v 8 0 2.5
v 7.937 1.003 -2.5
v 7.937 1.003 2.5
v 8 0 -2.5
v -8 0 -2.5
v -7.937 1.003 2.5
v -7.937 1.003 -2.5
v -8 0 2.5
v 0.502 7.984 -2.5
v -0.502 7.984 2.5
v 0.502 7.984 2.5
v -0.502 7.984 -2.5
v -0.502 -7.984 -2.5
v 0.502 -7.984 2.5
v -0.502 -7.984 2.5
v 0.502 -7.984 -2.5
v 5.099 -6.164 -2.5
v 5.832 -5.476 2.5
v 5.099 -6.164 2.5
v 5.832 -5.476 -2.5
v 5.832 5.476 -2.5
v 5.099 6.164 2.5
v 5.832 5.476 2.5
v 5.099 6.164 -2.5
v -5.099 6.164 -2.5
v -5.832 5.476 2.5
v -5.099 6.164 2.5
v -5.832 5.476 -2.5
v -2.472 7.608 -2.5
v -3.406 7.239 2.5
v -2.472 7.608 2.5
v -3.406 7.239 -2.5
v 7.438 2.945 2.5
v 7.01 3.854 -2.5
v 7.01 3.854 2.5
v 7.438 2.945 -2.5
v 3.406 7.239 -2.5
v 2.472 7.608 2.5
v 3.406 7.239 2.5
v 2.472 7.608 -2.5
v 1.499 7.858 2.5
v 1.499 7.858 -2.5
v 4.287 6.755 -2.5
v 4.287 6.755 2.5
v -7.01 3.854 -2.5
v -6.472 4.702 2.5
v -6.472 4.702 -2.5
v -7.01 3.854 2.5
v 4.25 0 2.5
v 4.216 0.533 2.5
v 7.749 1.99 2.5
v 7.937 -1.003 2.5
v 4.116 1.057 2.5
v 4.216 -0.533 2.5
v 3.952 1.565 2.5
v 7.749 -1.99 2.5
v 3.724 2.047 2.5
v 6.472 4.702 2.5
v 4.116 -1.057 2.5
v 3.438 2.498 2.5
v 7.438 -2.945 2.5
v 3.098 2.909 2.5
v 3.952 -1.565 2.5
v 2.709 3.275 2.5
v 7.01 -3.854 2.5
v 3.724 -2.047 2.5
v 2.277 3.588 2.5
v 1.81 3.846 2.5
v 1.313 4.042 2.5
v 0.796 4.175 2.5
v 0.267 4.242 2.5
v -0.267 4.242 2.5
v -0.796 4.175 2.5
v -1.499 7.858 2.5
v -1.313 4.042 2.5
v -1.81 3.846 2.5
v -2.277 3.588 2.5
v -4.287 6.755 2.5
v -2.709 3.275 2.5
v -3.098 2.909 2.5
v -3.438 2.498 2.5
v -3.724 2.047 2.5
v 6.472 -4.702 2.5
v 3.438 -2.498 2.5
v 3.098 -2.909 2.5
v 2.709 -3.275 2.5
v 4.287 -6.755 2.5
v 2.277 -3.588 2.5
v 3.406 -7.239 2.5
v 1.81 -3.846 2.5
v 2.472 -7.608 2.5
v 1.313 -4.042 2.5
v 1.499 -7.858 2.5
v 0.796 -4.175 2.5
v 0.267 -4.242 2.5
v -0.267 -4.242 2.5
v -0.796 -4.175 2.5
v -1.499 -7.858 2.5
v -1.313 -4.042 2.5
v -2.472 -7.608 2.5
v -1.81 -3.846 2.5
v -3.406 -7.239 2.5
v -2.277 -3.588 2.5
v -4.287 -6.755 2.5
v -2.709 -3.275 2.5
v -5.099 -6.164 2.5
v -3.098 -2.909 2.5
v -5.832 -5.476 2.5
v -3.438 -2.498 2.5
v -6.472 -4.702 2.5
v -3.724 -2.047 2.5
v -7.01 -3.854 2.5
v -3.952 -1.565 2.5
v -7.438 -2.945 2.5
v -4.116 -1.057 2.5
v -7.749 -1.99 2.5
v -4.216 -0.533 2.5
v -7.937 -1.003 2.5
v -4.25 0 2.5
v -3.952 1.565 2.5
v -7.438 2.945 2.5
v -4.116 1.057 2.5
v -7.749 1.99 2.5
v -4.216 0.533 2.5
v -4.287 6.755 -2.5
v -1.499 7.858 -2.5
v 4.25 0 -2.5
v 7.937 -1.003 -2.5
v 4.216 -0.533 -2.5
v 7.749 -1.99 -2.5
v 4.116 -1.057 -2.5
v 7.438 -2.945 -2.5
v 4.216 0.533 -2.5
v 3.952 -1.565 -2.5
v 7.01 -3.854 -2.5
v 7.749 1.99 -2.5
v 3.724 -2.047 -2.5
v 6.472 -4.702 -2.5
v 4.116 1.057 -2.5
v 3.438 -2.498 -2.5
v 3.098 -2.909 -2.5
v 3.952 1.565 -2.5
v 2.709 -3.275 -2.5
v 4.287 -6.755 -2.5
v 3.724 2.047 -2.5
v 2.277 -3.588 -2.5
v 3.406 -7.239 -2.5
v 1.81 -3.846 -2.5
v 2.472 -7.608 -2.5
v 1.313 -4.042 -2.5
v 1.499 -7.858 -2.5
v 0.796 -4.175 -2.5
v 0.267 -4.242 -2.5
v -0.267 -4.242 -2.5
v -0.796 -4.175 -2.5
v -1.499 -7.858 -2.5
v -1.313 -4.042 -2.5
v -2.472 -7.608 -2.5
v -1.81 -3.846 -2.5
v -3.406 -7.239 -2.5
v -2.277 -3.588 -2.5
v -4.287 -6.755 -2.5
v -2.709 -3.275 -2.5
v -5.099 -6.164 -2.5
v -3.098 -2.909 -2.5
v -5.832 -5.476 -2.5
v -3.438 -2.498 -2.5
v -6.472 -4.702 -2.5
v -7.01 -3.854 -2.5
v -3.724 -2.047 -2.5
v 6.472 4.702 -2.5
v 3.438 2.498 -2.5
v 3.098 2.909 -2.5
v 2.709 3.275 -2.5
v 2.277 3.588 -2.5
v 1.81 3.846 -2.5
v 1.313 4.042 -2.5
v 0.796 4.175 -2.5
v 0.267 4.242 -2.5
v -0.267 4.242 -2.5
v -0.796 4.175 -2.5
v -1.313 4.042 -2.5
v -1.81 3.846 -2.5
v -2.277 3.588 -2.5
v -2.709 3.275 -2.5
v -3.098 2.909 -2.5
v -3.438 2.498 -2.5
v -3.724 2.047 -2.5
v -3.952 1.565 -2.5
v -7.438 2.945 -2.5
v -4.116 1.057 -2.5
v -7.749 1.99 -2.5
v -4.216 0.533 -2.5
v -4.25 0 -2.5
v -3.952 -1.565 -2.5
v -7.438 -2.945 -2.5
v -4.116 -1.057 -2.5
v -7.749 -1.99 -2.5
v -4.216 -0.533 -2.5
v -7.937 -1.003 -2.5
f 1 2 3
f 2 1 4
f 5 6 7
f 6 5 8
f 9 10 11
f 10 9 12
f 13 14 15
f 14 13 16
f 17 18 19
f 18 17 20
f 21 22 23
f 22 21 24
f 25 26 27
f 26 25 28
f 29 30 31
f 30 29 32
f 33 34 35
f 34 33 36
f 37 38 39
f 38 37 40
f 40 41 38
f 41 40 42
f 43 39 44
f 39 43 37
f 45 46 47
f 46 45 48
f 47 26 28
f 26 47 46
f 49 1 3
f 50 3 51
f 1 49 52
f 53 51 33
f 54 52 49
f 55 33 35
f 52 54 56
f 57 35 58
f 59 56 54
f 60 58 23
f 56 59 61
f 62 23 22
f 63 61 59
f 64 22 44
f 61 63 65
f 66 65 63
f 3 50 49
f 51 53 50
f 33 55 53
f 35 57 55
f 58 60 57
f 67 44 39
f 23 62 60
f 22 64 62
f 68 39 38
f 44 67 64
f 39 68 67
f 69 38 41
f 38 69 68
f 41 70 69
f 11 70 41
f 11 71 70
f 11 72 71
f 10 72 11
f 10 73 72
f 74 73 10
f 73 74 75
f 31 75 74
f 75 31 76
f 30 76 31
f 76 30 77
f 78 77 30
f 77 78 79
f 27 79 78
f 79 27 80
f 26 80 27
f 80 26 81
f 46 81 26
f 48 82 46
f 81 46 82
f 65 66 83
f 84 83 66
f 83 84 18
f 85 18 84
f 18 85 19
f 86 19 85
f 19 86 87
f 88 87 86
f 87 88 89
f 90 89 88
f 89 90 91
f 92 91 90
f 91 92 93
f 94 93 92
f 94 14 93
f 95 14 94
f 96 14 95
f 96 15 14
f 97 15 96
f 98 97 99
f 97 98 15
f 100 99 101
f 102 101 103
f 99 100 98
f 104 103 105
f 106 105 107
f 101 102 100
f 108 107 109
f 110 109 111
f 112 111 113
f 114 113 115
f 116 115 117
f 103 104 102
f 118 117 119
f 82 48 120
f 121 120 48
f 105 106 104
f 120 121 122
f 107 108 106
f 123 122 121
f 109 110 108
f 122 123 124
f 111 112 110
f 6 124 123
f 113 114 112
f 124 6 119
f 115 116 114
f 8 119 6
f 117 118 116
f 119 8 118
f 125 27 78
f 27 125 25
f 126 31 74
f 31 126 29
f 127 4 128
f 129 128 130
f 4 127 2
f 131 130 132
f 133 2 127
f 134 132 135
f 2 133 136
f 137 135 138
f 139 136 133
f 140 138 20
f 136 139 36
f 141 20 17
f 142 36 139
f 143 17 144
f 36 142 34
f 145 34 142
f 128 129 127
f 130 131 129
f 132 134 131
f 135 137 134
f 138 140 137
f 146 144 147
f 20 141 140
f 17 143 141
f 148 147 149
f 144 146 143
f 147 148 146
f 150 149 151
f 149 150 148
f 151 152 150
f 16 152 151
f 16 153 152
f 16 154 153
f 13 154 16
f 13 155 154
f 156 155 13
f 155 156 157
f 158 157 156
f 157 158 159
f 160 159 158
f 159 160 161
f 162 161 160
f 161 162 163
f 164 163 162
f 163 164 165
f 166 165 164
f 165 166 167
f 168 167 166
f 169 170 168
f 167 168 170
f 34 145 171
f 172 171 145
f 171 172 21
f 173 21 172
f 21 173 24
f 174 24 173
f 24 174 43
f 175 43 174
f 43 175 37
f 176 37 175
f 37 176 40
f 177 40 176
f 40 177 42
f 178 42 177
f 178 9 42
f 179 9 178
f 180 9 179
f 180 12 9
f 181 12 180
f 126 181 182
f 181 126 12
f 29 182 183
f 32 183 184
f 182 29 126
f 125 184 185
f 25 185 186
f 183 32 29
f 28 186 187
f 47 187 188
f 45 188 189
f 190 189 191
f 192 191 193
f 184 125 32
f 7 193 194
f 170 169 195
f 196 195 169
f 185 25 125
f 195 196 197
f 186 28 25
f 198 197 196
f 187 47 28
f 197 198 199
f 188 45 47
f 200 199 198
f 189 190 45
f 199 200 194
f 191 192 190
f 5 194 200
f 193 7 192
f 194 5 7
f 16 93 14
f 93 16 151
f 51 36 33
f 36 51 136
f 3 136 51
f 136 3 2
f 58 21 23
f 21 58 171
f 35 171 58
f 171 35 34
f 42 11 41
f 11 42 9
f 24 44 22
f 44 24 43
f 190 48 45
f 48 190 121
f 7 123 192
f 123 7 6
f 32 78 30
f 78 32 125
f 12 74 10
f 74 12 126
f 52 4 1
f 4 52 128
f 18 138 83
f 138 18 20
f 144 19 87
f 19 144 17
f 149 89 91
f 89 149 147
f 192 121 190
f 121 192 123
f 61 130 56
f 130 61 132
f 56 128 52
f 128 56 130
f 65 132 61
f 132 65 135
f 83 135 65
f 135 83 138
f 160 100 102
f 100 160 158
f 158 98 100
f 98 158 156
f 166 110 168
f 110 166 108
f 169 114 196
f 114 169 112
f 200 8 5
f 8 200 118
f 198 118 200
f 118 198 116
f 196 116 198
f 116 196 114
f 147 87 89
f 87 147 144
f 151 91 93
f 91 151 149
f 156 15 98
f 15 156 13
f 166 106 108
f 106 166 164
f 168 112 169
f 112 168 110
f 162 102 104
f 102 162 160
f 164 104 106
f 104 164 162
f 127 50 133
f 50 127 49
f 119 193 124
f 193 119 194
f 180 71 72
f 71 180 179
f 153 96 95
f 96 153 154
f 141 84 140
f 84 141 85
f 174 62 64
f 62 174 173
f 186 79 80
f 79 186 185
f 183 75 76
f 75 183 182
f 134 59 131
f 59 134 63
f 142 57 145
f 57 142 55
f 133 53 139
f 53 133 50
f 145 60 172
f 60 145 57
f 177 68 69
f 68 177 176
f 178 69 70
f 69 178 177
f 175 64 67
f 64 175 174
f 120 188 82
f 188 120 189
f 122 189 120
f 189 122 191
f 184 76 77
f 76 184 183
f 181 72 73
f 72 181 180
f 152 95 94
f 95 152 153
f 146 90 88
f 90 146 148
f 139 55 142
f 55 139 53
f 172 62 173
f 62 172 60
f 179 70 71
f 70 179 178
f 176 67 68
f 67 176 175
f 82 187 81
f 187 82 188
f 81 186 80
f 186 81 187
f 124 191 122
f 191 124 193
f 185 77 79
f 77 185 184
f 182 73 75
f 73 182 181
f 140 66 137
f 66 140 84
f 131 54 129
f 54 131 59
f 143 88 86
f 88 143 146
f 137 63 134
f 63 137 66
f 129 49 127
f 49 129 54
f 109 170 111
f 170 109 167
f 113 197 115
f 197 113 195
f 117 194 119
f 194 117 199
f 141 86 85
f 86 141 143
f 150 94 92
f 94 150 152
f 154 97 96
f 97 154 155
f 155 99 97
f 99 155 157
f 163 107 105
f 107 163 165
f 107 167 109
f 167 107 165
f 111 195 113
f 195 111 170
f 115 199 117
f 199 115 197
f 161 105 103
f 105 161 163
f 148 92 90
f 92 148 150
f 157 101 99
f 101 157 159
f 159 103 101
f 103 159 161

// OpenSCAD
$fn = 50;


difference() {
	union() {
		translate(v = [0, 0, -2.5000000000]) {
			cylinder(h = 5, r = 8.0000000000);
		}
	}
	union() {
		translate(v = [0, 0, -100.0000000000]) {
			cylinder(h = 200, r = 4.2500000000);
		}
	}
}
